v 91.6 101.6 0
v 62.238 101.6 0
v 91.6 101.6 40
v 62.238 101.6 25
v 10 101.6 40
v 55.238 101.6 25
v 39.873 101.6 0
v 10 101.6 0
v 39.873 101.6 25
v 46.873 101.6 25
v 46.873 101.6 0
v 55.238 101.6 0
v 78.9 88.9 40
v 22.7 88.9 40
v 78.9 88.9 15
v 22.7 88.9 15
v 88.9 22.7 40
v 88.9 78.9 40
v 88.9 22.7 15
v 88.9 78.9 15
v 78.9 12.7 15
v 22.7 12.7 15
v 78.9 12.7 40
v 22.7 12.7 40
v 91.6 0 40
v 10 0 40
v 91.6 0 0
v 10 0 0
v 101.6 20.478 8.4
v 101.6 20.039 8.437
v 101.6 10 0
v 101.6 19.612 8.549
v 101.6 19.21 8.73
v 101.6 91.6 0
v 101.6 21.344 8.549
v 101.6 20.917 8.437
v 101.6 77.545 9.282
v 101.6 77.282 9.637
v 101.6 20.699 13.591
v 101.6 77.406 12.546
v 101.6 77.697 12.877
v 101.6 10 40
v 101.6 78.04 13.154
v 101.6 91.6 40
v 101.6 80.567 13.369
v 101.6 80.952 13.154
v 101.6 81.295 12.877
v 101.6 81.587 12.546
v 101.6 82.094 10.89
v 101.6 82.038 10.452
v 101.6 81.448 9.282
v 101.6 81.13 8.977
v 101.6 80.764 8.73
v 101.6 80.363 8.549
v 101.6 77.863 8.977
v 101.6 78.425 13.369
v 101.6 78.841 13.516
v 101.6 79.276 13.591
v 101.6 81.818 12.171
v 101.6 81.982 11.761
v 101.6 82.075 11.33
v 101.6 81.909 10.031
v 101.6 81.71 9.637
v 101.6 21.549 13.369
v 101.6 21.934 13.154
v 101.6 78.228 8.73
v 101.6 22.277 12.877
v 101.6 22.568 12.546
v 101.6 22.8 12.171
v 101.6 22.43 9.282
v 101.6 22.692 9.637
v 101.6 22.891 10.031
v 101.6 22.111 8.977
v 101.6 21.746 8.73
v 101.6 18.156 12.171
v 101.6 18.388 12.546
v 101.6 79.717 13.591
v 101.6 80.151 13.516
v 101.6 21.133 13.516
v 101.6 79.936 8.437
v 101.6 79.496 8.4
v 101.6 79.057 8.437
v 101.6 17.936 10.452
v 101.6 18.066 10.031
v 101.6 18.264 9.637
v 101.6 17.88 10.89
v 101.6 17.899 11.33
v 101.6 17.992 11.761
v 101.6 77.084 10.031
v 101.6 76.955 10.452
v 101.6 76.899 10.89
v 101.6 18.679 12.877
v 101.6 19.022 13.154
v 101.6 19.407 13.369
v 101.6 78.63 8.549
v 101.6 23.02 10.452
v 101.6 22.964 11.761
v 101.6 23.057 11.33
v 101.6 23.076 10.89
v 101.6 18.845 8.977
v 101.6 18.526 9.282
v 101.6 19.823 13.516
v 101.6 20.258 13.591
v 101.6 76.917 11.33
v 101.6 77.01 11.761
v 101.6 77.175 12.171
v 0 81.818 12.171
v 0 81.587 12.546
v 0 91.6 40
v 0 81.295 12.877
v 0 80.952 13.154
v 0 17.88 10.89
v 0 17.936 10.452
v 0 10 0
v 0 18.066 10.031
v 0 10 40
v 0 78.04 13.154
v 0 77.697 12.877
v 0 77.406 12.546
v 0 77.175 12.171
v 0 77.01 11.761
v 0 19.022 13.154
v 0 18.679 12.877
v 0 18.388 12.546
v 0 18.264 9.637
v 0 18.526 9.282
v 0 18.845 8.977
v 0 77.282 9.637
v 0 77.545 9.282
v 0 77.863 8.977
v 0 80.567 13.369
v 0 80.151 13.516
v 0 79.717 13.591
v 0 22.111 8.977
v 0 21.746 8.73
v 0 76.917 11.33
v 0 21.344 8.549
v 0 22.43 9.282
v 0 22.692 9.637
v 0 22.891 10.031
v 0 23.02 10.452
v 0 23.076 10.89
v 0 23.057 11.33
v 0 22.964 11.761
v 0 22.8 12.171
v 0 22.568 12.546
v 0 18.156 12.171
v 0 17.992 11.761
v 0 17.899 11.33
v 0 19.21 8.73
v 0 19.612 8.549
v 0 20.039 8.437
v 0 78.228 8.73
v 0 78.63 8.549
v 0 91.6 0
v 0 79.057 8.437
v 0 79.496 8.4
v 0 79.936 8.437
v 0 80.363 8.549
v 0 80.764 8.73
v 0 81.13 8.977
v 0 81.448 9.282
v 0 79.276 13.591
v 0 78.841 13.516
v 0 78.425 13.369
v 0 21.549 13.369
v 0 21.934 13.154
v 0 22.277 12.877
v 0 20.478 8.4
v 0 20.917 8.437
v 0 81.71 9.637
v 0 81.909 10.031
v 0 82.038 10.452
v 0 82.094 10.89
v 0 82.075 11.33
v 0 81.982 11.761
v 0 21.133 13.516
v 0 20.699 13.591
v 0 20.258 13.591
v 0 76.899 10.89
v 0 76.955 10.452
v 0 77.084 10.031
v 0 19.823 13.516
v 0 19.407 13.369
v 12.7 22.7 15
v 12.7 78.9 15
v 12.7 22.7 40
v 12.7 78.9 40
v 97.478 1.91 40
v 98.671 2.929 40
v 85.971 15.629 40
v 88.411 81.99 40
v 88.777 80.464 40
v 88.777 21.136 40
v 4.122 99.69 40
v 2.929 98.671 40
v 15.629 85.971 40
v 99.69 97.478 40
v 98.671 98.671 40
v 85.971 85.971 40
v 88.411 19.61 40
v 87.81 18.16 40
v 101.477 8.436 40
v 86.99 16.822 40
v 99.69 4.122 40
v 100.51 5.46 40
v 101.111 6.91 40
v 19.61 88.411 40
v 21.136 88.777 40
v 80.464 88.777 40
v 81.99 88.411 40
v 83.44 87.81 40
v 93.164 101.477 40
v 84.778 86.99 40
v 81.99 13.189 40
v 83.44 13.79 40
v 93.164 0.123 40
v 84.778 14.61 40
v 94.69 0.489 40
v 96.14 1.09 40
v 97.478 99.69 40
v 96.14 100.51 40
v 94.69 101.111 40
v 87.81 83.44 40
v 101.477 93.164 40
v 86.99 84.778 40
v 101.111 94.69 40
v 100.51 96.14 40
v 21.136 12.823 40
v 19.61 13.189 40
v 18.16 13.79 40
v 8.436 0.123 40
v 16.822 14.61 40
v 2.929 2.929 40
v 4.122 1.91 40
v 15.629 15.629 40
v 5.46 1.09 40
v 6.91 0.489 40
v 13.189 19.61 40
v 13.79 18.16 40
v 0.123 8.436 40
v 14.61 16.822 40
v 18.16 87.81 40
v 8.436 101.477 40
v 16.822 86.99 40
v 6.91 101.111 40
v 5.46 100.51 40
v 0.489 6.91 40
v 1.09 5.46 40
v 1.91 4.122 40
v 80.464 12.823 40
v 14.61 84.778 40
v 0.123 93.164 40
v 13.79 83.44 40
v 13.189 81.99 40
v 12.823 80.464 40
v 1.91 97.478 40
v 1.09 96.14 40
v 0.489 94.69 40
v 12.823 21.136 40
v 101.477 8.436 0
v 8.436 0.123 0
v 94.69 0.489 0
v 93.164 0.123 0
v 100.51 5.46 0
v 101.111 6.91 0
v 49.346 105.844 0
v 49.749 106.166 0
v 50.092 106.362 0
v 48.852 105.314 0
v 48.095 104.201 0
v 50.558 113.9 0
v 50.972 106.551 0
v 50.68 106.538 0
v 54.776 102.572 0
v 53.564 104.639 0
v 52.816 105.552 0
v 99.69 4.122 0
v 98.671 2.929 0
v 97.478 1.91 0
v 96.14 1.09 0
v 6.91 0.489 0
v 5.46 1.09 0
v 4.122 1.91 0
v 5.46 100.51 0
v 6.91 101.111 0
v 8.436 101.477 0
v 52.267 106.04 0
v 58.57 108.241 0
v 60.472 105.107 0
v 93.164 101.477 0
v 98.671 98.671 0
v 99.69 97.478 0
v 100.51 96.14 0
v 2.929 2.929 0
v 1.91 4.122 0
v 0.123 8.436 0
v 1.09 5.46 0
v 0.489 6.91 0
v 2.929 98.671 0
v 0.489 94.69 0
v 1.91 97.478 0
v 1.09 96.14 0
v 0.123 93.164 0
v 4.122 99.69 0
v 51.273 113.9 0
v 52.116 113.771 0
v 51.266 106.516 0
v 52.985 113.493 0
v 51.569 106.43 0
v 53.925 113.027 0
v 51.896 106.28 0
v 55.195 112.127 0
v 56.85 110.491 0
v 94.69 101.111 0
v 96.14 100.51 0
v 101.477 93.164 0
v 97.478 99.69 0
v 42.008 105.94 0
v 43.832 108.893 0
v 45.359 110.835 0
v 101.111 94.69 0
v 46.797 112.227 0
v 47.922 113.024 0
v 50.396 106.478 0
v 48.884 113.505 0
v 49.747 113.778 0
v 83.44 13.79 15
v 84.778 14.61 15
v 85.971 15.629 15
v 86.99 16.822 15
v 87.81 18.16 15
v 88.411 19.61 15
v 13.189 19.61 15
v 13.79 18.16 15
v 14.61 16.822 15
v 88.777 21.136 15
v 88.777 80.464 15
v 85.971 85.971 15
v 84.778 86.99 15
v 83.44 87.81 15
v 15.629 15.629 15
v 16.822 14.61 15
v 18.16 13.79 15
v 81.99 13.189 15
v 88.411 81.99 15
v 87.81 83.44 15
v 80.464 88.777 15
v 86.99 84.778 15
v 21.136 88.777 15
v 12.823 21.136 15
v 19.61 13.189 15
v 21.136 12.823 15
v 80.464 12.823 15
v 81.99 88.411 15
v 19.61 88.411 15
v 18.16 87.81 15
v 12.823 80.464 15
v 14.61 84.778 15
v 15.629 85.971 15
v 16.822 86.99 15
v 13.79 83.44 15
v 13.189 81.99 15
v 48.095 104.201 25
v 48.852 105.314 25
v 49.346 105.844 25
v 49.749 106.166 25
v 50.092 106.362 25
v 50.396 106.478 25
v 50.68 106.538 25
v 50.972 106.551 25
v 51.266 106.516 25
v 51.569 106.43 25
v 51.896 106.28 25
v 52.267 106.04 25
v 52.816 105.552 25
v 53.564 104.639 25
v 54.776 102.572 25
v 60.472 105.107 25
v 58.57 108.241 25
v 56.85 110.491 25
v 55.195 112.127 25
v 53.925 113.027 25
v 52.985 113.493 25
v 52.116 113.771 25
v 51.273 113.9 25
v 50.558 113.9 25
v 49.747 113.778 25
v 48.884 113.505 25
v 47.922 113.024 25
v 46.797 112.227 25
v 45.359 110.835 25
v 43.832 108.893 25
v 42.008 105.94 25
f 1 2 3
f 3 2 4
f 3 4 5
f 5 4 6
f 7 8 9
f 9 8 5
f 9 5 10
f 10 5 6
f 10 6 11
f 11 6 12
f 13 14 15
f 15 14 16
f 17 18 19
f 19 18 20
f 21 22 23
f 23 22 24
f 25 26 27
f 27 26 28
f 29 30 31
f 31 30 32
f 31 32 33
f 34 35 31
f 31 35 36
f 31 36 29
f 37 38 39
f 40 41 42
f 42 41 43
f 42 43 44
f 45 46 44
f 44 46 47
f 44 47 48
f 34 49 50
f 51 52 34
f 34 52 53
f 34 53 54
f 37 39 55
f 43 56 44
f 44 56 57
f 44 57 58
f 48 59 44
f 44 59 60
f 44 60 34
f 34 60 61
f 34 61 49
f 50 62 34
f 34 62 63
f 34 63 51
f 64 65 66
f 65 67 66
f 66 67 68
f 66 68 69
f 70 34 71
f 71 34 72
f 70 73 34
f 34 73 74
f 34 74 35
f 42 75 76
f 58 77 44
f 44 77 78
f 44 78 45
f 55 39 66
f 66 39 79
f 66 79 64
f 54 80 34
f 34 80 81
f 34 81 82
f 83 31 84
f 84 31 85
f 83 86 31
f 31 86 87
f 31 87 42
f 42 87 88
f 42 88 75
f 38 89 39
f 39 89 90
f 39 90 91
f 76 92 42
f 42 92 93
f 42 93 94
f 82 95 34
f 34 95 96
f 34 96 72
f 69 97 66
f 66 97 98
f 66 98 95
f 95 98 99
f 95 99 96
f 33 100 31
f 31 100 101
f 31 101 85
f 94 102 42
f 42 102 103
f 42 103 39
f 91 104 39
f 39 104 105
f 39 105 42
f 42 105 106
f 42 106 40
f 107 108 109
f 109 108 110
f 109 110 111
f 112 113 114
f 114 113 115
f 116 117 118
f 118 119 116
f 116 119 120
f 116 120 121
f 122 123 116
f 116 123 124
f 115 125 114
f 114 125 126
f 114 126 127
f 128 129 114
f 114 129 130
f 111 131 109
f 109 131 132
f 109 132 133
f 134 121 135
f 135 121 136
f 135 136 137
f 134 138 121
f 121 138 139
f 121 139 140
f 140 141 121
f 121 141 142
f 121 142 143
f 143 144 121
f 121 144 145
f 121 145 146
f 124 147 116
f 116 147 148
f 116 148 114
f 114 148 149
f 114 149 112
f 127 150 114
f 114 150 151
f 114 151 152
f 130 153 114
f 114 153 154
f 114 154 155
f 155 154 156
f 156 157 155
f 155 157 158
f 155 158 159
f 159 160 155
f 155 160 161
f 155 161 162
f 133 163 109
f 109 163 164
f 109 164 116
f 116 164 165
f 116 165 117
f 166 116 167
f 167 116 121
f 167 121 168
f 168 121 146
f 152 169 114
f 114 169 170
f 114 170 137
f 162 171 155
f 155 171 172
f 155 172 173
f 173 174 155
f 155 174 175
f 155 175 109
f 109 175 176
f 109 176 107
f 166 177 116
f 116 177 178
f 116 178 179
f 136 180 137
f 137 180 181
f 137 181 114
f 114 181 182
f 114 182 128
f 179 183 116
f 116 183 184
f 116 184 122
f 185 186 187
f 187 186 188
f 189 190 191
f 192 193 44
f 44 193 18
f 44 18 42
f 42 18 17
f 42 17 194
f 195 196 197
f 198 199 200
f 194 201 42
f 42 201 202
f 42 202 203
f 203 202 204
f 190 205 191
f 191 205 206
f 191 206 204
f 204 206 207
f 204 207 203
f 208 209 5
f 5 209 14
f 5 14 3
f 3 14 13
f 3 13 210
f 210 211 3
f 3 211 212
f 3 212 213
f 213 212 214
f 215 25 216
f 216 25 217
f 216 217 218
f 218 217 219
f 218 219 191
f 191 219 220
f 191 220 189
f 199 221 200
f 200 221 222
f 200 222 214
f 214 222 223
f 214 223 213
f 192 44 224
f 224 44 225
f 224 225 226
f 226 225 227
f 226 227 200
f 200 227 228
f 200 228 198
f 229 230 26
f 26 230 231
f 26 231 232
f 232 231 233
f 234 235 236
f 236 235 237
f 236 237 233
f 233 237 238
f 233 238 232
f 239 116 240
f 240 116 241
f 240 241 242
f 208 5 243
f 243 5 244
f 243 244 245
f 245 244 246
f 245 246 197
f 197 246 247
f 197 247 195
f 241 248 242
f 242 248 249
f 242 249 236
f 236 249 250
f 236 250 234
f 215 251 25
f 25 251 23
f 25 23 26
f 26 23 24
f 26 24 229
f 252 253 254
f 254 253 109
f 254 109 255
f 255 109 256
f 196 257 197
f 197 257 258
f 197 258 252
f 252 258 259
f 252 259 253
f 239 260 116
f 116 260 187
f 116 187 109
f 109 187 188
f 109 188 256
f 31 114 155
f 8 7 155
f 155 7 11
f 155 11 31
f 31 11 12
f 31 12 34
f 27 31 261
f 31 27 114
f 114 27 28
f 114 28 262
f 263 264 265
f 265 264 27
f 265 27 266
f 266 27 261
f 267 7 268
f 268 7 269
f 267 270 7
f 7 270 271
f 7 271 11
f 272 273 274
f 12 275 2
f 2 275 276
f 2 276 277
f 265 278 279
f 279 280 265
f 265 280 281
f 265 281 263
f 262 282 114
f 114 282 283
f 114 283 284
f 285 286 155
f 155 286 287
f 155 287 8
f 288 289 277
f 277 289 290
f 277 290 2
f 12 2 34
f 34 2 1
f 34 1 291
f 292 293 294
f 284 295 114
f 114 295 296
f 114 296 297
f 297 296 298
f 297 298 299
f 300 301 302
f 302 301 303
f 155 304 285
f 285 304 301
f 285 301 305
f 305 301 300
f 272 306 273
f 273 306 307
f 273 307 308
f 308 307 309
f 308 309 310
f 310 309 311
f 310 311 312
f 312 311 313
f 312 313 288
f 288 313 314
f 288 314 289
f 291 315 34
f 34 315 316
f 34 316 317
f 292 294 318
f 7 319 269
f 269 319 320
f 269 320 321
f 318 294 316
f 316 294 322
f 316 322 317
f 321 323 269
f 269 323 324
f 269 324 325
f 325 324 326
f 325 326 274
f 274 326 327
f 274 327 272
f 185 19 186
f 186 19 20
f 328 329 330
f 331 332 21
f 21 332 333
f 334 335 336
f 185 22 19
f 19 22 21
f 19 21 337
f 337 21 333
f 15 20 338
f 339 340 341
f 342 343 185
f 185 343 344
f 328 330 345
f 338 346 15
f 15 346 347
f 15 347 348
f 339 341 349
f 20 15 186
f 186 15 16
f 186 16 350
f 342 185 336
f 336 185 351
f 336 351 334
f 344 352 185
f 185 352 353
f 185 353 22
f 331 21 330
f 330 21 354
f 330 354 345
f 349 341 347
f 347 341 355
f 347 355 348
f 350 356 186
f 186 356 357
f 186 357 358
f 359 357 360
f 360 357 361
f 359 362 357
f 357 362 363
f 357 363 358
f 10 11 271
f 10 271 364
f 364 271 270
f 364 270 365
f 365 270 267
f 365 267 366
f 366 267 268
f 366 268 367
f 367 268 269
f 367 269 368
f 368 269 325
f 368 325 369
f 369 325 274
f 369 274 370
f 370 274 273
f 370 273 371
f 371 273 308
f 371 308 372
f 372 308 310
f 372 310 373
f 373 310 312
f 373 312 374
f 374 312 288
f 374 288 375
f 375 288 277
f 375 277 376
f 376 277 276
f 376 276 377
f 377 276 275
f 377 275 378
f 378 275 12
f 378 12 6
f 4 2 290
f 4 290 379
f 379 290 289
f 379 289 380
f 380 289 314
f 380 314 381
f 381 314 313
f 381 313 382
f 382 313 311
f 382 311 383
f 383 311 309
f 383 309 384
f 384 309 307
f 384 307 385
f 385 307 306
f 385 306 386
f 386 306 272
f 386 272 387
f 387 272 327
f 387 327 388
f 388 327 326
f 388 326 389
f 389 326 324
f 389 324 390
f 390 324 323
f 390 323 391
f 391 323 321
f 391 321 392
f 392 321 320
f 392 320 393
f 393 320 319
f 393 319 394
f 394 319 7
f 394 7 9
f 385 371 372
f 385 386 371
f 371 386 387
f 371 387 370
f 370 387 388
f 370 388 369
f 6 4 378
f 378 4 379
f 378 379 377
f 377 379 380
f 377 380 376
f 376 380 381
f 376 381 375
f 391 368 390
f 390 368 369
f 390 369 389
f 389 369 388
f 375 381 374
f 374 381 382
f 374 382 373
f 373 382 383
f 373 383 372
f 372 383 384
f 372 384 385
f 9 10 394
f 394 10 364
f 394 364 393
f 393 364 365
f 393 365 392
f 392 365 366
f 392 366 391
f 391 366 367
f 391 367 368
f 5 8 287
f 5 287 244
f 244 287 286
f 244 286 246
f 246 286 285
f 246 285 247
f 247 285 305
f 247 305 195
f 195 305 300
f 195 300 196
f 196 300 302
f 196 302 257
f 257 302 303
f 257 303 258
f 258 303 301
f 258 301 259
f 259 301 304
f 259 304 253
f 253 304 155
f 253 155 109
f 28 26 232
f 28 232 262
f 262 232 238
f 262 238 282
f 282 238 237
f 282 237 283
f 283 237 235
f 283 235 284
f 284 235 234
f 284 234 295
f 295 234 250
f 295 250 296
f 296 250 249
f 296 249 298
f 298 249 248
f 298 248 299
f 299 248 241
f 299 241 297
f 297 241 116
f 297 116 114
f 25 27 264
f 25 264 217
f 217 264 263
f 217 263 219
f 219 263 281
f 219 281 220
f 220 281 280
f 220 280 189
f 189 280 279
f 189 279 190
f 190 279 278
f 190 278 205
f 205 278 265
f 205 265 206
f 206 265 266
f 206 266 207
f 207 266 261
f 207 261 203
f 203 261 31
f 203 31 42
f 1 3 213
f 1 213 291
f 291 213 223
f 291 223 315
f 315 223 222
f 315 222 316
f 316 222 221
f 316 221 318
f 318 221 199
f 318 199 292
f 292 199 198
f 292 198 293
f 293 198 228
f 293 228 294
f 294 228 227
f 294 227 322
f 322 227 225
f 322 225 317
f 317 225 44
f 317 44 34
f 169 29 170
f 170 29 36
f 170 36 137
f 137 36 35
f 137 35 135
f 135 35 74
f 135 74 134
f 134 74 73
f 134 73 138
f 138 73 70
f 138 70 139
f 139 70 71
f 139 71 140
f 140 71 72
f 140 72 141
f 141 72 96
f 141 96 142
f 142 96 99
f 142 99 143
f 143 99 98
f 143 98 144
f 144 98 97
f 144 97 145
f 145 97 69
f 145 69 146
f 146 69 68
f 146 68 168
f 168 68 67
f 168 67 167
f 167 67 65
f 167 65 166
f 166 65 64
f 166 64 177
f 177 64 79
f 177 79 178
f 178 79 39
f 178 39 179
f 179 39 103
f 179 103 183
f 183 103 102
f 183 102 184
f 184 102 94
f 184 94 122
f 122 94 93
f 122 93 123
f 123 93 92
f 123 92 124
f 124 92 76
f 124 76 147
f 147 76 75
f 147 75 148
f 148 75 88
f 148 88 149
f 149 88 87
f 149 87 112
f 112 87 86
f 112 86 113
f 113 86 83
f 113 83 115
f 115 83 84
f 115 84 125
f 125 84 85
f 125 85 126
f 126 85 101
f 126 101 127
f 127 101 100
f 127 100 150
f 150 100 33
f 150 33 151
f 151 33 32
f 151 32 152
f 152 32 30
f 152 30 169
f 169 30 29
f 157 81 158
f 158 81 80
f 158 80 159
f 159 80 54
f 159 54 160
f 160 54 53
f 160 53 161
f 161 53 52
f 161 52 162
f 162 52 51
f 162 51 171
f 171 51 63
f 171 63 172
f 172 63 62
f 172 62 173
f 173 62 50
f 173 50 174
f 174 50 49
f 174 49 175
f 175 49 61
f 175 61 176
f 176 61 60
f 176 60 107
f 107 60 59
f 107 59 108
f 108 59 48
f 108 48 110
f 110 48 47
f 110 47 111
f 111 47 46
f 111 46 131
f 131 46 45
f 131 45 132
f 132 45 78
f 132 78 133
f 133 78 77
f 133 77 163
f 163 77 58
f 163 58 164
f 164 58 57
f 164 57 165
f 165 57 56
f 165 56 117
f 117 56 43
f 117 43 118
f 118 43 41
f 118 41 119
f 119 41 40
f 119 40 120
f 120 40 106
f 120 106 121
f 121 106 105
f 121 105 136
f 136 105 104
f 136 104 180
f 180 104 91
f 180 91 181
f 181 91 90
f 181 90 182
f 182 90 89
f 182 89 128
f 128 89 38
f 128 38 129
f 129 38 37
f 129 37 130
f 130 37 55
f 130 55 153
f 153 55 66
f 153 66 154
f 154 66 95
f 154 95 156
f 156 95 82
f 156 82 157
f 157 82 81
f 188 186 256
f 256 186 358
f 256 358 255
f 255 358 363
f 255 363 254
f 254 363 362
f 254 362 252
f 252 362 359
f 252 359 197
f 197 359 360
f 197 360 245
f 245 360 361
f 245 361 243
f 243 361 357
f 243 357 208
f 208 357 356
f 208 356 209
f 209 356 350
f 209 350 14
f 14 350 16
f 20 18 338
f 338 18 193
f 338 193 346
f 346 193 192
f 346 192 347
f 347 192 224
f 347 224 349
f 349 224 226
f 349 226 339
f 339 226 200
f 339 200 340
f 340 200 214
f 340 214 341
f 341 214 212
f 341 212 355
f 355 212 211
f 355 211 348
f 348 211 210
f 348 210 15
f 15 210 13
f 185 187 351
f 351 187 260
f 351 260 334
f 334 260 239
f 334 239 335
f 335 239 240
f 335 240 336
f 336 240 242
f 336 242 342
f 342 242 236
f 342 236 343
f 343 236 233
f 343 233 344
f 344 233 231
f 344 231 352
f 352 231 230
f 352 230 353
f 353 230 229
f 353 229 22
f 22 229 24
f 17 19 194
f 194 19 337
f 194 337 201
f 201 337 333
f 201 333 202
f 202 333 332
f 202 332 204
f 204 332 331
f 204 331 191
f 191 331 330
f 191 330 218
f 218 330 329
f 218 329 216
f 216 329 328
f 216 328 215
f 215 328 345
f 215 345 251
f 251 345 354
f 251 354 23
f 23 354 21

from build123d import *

# Parameters (mm, degrees)
SKETCH1_W          = 76.2
SKETCH1_H          = 76.2
SIDE_DEPTH         = 40
SKETCH1_8_W        = 76.2
SKETCH1_8_H        = 76.2
BOTTOM_DEPTH       = 15
HOLDER_DEPTH       = 25
FILLET1_R          = 10
FILLET2_R          = 10
FILLET3_R          = 10
FILLET4_R          = 10
SKETCH2_R          = 2.6
CUT_EXTRUDE1_DEPTH = 158.793298372
FILLET5_R          = 10
FILLET6_R          = 10
FILLET7_R          = 10
FILLET8_R          = 10


with BuildPart() as part:
    # Sketch1 → side (new body)
    with BuildSketch(Plane.XY):
        Polygon((0, 101.6), (0, 0), (101.6, 0), (101.6, 101.6), (62.237812333, 101.6), (55.237812333, 101.6), (46.872931824, 101.6), (39.872931824, 101.6), align=None)
        with Locations((50.8, 50.8)):
            Rectangle(SKETCH1_W, SKETCH1_H, mode=Mode.SUBTRACT)
    extrude(amount=SIDE_DEPTH)

    # Sketch1<8> → bottom (add)
    with BuildSketch(Plane.XY):
        with Locations((50.8, 50.8)):
            Rectangle(SKETCH1_8_W, SKETCH1_8_H)
    extrude(amount=BOTTOM_DEPTH)

    # Sketch1<10> → holder (add)
    with BuildSketch(Plane.XY):
        with BuildLine():
            add(Edge.make_bspline(
                [(39.872931824, 101.6), (50.775448556, 126.225942053), (62.237812333, 101.6)],
                knots=[0, 0, 0, 1, 1, 1], degree=2))
            Line((39.872931824, 101.6), (46.872931824, 101.6))
            add(Edge.make_bspline(
                [(46.872931824, 101.6), (50.757022912, 111.505038694), (55.237812333, 101.6)],
                knots=[0, 0, 0, 1, 1, 1], degree=2))
            Line((55.237812333, 101.6), (62.237812333, 101.6))
        make_face()
    extrude(amount=HOLDER_DEPTH)

    # Fillet1
    fillet1_edges = [part.edges().sort_by_distance(p)[0] for p in [
        (0, 101.6, 20),
    ]]
    fillet(fillet1_edges, radius=FILLET1_R)

    # Fillet2
    fillet2_edges = [part.edges().sort_by_distance(p)[0] for p in [
        (0, 0, 20),
    ]]
    fillet(fillet2_edges, radius=FILLET2_R)

    # Fillet3
    fillet3_edges = [part.edges().sort_by_distance(p)[0] for p in [
        (101.6, 0, 20),
    ]]
    fillet(fillet3_edges, radius=FILLET3_R)

    # Fillet4
    fillet4_edges = [part.edges().sort_by_distance(p)[0] for p in [
        (101.6, 101.6, 20),
    ]]
    fillet(fillet4_edges, radius=FILLET4_R)

    # Sketch2 → Cut-Extrude1 (cut, through all)
    with BuildSketch(Plane(origin=(101.6, 0, 0), x_dir=(0, 0, -1), z_dir=(1, 0, 0))):
        with Locations((-11, 79.49634719)):
            Circle(SKETCH2_R)
        with Locations((-11, 20.478079238)):
            Circle(SKETCH2_R)
    extrude(amount=-CUT_EXTRUDE1_DEPTH, mode=Mode.SUBTRACT)

    # Fillet5
    fillet5_edges = [part.edges().sort_by_distance(p)[0] for p in [
        (12.7, 88.9, 27.5),
    ]]
    fillet(fillet5_edges, radius=FILLET5_R)

    # Fillet6
    fillet6_edges = [part.edges().sort_by_distance(p)[0] for p in [
        (88.9, 88.9, 27.5),
    ]]
    fillet(fillet6_edges, radius=FILLET6_R)

    # Fillet7
    fillet7_edges = [part.edges().sort_by_distance(p)[0] for p in [
        (12.7, 12.7, 27.5),
    ]]
    fillet(fillet7_edges, radius=FILLET7_R)

    # Fillet8
    fillet8_edges = [part.edges().sort_by_distance(p)[0] for p in [
        (88.9, 12.7, 27.5),
    ]]
    fillet(fillet8_edges, radius=FILLET8_R)


solid = part.part
